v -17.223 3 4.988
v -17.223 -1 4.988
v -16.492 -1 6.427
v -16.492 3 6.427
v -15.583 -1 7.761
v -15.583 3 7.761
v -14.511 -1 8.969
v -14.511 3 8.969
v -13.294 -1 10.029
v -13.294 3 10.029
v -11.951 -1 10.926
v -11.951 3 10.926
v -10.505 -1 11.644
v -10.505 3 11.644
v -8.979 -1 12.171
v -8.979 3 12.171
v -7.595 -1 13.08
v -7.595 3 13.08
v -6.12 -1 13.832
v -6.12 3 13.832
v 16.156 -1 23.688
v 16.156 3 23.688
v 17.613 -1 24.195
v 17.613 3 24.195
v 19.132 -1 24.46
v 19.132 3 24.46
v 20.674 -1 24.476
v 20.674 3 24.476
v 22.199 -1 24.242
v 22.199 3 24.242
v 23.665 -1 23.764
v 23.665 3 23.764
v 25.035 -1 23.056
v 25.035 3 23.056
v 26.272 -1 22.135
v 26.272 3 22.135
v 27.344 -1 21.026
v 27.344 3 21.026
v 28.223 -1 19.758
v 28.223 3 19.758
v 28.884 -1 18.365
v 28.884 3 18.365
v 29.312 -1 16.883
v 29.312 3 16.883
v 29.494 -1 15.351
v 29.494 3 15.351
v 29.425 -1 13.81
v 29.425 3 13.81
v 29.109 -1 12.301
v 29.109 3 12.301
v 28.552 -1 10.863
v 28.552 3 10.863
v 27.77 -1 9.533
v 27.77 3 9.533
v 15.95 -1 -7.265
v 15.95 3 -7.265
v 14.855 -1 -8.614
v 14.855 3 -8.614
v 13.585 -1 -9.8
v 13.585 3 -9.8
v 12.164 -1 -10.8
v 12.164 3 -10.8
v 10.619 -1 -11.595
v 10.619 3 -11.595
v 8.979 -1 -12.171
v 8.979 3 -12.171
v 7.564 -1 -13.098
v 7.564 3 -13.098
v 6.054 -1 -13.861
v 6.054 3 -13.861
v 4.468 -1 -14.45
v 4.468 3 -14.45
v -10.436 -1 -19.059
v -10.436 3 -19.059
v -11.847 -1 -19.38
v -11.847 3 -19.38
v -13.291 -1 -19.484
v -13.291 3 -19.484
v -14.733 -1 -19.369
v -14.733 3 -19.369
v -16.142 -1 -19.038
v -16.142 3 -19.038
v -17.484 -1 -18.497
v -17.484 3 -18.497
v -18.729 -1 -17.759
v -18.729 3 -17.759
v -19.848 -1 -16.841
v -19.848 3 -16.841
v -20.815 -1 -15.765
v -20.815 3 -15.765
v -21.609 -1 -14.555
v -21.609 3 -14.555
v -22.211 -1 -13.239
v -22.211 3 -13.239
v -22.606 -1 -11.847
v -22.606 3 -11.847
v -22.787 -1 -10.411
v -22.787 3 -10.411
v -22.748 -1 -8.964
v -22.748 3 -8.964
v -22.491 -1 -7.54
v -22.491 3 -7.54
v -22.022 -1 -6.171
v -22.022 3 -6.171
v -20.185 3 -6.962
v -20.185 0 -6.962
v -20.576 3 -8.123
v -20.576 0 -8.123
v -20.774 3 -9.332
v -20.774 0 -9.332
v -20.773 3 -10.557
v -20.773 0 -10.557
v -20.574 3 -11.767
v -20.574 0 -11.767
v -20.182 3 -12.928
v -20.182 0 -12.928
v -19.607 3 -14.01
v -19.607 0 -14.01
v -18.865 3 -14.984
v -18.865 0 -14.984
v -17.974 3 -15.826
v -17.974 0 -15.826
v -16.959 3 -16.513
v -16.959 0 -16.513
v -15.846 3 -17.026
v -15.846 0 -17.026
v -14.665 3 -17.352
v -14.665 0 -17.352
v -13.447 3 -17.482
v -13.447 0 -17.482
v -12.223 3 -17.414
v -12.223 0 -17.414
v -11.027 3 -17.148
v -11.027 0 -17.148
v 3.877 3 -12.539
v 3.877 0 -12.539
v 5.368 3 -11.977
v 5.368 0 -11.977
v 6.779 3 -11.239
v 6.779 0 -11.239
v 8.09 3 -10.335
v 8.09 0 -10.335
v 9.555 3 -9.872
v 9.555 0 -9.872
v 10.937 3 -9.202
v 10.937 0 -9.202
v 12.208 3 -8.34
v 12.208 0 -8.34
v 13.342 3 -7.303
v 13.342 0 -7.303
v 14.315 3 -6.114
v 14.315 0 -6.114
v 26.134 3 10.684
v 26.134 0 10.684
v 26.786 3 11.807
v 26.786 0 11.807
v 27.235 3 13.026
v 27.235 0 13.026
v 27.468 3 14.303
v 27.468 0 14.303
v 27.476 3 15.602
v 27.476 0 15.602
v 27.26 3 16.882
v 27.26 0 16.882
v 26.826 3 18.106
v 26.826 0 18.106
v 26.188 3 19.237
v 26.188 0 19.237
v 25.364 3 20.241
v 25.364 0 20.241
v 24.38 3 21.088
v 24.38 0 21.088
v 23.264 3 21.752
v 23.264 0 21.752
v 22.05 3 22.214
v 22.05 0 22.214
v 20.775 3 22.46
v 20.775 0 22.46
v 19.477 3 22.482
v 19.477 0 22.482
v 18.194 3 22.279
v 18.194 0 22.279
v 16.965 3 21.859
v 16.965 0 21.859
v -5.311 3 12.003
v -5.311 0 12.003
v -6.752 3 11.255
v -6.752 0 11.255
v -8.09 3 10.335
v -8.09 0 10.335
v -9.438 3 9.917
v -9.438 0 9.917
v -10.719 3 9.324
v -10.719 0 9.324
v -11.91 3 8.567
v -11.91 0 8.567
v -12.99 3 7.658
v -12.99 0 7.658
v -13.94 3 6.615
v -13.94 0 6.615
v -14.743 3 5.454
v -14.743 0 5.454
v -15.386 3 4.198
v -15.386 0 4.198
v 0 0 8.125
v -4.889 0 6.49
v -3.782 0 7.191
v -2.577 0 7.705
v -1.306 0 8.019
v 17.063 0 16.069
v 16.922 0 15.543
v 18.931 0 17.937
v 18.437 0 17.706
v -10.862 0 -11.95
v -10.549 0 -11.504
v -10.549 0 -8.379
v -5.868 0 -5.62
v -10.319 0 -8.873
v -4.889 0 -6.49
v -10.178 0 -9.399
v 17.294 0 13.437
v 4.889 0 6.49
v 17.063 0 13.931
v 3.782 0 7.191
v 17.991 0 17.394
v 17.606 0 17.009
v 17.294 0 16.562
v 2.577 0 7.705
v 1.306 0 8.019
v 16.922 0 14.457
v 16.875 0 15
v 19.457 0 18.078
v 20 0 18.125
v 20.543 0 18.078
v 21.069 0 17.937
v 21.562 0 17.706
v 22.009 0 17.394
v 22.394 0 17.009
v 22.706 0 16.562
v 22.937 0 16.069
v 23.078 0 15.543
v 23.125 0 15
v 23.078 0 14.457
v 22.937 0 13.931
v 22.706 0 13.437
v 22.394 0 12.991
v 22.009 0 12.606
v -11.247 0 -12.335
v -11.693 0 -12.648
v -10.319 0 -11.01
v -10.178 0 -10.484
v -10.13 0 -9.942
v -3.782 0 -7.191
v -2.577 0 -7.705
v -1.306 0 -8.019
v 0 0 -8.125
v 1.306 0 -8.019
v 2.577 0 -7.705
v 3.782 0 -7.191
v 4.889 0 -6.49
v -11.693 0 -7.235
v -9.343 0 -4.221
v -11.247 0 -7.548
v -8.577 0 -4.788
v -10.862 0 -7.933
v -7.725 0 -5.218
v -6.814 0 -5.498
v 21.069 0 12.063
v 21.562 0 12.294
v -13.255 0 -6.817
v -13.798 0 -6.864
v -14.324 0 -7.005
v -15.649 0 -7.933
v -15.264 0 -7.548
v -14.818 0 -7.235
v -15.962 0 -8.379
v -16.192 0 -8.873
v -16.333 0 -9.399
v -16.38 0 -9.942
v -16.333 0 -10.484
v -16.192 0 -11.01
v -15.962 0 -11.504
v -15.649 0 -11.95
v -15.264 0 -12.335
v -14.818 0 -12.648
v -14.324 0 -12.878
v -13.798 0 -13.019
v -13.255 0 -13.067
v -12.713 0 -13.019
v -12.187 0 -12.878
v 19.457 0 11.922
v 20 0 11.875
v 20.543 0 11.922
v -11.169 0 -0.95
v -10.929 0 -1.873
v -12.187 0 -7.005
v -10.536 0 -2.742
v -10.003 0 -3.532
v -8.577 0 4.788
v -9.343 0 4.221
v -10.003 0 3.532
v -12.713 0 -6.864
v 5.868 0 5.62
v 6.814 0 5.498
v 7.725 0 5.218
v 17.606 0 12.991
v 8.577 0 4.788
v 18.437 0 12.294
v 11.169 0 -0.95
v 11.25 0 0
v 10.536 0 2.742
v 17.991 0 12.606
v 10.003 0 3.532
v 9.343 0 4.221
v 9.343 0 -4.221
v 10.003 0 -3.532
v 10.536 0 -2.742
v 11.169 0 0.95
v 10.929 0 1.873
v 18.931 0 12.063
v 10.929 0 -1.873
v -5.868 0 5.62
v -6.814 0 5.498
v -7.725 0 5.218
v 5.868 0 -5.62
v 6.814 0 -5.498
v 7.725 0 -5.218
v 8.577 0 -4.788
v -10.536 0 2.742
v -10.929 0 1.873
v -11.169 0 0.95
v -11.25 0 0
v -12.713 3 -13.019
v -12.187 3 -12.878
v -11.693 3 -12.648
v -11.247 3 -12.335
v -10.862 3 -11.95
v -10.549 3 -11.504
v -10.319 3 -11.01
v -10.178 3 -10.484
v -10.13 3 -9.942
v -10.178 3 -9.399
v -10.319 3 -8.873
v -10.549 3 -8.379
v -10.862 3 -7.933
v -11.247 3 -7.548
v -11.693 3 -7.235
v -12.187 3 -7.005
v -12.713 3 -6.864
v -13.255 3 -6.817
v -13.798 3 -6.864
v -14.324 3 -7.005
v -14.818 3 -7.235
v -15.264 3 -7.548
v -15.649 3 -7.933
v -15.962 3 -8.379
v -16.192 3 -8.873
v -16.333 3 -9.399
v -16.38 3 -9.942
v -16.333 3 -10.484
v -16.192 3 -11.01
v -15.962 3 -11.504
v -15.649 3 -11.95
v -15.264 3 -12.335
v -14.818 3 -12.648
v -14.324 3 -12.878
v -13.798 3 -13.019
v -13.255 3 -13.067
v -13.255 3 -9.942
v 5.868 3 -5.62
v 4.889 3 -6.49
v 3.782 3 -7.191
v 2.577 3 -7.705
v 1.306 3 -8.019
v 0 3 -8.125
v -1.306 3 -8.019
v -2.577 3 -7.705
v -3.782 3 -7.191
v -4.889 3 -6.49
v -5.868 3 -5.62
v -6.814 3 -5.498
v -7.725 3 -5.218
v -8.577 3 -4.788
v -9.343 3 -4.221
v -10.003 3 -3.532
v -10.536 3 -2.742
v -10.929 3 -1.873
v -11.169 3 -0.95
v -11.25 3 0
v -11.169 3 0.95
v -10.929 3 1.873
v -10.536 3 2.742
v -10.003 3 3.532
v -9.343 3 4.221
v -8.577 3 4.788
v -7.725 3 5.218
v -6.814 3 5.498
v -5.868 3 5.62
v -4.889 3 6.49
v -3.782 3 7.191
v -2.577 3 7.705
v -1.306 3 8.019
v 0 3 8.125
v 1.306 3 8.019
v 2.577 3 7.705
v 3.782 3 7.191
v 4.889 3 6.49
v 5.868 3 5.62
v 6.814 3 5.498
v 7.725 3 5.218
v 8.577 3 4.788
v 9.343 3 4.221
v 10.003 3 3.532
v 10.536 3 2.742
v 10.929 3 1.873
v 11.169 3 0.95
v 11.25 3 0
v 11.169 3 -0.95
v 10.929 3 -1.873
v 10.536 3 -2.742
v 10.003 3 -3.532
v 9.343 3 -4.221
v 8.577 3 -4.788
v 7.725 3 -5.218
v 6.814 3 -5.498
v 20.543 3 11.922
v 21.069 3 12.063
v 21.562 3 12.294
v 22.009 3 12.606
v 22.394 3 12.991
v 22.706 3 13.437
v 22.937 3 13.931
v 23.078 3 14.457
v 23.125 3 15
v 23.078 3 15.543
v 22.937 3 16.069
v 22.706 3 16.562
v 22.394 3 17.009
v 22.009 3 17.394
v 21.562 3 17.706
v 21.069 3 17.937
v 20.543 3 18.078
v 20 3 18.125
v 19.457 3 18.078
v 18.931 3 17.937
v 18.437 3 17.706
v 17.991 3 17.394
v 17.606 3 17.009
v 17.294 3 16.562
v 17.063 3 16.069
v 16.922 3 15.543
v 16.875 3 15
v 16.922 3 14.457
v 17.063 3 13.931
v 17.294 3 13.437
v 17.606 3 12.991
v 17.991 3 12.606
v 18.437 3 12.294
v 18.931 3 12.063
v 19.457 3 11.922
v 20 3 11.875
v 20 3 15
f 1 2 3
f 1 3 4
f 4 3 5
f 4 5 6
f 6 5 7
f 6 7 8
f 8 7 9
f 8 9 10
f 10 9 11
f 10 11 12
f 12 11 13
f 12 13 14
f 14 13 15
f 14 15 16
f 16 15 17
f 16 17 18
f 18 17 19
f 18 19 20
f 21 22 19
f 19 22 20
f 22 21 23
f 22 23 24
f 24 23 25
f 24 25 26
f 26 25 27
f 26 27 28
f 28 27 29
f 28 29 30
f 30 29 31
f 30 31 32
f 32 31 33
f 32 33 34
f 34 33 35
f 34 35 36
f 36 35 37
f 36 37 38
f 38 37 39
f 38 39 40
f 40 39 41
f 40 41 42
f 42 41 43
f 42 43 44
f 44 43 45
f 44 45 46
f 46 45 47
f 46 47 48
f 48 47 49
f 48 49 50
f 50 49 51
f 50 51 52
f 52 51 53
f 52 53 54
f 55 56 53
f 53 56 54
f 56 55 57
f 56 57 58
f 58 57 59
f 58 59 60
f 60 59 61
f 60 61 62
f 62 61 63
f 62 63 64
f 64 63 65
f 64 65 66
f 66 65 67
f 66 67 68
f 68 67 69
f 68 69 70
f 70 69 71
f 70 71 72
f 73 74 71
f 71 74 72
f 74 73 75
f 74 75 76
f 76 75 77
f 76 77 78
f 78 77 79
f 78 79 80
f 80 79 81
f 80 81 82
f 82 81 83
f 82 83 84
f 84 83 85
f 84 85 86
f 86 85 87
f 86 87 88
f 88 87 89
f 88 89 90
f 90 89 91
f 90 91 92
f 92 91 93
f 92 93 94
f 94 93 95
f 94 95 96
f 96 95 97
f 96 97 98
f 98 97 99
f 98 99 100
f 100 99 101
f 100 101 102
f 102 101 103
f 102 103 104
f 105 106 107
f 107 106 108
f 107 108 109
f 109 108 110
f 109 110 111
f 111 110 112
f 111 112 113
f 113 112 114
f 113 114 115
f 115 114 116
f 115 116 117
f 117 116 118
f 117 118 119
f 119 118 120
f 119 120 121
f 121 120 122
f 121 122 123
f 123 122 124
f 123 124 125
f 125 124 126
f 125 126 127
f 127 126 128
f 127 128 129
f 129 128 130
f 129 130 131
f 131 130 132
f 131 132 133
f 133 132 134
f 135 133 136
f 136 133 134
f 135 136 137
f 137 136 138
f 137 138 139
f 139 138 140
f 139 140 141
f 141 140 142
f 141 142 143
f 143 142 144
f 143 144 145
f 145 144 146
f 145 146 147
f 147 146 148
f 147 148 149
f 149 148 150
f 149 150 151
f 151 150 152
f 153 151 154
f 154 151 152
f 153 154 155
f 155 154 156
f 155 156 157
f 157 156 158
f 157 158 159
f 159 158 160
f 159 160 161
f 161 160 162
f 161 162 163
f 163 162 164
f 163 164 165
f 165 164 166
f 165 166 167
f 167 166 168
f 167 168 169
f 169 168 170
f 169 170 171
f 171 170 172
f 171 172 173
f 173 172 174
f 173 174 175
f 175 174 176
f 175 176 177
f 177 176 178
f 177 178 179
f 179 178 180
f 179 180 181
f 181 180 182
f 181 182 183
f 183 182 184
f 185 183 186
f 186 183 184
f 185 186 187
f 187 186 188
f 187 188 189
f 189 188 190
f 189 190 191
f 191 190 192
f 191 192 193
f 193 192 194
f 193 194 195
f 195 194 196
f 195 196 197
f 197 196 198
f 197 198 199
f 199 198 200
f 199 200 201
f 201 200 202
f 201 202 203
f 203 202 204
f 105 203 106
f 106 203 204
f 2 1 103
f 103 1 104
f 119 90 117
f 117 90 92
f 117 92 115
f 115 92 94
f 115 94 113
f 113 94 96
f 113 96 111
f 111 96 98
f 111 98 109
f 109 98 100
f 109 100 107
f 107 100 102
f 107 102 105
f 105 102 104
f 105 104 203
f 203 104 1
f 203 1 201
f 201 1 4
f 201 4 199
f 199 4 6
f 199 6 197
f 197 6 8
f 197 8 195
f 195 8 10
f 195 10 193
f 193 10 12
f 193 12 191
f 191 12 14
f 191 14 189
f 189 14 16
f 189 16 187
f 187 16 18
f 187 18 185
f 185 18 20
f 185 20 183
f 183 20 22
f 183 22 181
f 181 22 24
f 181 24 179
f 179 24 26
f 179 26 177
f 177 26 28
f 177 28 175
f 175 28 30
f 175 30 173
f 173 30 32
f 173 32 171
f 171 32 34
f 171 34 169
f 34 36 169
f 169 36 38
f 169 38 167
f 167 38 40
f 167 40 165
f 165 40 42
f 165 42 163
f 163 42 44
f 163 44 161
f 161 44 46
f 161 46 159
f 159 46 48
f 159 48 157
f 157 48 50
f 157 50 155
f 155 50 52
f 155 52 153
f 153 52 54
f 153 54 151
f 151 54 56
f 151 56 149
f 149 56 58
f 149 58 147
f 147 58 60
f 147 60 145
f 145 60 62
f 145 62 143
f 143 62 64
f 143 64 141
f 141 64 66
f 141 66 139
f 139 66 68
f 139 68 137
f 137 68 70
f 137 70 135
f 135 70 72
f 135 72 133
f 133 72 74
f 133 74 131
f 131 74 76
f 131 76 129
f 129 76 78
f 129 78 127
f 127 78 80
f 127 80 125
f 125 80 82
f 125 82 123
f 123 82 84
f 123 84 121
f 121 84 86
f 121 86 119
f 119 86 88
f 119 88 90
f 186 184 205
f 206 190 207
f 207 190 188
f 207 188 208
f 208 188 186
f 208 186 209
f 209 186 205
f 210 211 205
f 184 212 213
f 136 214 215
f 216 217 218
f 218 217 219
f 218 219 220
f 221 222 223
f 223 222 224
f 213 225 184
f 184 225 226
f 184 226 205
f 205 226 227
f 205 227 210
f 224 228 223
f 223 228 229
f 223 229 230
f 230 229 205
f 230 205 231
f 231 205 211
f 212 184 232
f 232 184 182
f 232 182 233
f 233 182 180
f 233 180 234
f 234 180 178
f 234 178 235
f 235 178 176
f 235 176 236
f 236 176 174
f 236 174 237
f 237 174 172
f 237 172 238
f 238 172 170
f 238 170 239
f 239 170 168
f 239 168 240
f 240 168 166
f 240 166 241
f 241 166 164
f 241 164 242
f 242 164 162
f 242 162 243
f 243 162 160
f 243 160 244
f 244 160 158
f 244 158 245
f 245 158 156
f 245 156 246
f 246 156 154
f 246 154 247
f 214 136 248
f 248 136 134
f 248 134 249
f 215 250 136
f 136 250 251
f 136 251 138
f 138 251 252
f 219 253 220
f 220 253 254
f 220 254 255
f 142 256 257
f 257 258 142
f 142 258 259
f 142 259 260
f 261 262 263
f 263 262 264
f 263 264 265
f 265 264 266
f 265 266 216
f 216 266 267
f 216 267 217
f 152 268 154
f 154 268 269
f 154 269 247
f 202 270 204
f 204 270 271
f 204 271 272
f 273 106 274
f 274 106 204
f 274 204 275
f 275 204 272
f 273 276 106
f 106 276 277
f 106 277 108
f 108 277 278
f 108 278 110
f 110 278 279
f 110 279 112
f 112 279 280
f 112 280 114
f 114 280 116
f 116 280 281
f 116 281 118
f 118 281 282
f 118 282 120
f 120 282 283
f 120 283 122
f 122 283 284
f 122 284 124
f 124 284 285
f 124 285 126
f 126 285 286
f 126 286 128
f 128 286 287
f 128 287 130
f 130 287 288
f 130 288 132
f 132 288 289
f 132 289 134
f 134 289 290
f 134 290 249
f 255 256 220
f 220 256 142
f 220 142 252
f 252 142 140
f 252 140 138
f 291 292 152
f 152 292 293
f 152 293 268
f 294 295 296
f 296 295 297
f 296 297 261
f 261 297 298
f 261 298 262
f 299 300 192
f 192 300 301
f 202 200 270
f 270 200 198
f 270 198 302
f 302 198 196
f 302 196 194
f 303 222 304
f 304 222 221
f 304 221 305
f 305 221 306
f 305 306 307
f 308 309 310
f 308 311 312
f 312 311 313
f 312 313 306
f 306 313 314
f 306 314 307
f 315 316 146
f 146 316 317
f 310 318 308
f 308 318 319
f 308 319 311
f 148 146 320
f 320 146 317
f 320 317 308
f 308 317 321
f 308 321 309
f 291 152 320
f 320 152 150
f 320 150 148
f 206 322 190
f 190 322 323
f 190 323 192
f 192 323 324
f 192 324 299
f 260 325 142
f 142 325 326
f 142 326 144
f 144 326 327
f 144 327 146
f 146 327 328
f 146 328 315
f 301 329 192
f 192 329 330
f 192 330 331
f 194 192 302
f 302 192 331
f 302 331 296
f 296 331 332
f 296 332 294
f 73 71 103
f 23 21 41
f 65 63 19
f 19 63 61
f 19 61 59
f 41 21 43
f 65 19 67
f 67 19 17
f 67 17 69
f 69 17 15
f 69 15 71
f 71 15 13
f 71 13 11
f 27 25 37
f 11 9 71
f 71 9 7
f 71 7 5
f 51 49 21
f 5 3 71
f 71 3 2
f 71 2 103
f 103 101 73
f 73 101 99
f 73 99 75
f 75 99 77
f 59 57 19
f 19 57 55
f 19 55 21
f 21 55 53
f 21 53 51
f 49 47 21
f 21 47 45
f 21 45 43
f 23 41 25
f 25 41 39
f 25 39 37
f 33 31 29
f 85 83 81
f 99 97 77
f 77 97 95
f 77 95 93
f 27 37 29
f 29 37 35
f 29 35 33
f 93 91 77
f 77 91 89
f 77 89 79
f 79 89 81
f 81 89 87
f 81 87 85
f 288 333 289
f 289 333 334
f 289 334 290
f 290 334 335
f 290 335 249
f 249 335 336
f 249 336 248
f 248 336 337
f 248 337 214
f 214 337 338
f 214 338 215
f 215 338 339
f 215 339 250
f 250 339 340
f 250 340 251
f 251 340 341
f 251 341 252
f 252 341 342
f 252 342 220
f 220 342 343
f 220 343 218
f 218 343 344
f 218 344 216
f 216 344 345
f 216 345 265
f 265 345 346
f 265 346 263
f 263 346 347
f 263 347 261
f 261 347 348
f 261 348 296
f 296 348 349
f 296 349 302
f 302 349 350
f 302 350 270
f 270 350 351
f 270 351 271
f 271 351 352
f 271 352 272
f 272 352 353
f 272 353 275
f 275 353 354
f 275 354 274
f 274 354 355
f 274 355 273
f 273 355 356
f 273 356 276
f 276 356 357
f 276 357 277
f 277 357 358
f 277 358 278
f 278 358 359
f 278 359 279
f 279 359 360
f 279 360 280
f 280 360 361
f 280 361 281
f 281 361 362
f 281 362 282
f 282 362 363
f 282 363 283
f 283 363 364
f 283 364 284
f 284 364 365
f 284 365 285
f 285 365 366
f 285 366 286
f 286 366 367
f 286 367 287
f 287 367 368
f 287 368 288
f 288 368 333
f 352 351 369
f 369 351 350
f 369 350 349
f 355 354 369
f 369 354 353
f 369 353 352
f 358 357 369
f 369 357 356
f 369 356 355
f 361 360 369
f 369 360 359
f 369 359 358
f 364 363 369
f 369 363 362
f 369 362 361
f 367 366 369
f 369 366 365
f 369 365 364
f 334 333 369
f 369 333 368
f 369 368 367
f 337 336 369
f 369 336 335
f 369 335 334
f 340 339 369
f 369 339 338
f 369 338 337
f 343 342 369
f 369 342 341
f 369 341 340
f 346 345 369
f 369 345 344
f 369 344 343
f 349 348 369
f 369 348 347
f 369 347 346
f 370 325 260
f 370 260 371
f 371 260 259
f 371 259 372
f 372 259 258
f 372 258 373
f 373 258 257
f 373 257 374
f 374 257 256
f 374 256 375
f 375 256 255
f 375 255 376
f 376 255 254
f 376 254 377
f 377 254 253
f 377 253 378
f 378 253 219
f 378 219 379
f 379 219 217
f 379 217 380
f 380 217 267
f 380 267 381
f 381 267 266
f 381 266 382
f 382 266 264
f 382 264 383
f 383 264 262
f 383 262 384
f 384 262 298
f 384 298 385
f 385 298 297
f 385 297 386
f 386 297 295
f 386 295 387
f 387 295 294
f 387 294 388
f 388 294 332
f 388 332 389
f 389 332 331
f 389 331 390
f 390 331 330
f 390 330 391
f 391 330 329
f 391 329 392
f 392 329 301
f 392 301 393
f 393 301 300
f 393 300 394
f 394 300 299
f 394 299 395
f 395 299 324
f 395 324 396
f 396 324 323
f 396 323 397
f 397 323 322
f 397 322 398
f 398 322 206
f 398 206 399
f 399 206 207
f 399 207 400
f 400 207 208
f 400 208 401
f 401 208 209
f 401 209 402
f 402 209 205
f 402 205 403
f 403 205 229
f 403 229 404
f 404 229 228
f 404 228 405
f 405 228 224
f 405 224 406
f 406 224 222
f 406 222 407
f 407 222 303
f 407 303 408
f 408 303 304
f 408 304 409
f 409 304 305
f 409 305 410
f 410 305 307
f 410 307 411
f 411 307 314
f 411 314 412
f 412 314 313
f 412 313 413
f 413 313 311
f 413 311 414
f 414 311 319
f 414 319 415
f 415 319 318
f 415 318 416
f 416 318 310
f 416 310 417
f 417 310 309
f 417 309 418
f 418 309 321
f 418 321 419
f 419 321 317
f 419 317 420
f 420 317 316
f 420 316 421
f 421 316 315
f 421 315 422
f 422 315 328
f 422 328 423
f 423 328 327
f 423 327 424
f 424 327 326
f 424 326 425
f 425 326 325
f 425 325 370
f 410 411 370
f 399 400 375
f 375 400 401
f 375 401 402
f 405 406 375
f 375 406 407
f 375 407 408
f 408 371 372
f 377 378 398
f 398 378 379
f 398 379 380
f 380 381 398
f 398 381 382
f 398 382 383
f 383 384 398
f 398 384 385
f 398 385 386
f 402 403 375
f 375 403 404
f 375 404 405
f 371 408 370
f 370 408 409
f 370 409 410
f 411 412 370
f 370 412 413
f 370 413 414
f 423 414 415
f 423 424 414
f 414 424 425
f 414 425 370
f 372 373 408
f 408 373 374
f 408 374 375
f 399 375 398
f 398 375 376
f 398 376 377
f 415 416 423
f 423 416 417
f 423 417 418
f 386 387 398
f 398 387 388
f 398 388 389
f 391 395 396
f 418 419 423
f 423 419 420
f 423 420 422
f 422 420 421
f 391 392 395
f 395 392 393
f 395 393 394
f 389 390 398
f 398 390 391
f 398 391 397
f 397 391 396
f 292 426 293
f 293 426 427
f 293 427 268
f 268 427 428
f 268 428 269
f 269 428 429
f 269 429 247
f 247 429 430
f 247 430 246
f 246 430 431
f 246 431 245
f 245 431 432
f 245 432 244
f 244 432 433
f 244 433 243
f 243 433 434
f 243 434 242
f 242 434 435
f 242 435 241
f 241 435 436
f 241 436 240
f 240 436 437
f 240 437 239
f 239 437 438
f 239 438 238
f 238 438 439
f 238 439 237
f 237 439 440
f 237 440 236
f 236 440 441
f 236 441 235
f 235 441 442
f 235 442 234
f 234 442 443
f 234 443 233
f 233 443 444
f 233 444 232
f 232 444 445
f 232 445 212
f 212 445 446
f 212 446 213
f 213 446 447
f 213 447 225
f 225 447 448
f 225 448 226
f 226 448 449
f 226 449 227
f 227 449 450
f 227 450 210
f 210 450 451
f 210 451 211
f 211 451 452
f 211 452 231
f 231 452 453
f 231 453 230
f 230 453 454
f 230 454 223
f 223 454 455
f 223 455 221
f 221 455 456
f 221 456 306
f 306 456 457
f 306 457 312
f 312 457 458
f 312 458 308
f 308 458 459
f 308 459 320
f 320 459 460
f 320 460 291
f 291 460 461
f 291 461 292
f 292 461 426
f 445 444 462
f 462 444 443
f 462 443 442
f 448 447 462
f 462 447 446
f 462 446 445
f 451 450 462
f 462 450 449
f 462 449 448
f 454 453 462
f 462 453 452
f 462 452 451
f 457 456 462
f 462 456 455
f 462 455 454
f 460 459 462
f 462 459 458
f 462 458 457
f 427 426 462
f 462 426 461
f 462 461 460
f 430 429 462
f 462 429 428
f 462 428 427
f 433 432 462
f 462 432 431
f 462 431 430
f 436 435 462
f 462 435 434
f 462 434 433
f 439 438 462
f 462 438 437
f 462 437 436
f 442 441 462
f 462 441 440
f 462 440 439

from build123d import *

# Parameters (mm, degrees)
SKETCH1_R             = 3.125
BOSS_EXTRUDE1_DEPTH   = 3
BOSS_EXTRUDE1_2_DEPTH = 3
BOSS_EXTRUDE1_3_DEPTH = 3
BOSS_EXTRUDE1_4_DEPTH = 3
BOSS_EXTRUDE2_DEPTH   = 1


with BuildPart() as part:
    # Sketch1 → Boss-Extrude1 (new body)
    with BuildSketch(Plane(origin=(0, 0, 0), x_dir=(1, 0, 0), z_dir=(0, 1, 0))):
        with Locations(Location((20, -15, 0), (0, 0, 270))):
            Circle(SKETCH1_R)
    extrude(amount=BOSS_EXTRUDE1_DEPTH)



with BuildPart() as body_2:
    # Sketch1 → Boss-Extrude1 2 (new body)
    with BuildSketch(Plane(origin=(0, 0, 0), x_dir=(1, 0, 0), z_dir=(0, 1, 0))):
        with Locations(Location((-13.25542136, 9.94156602, 0), (0, 0, 270))):
            Circle(SKETCH1_R)
    extrude(amount=BOSS_EXTRUDE1_2_DEPTH)


with BuildPart() as body_3:
    # Sketch1 → Boss-Extrude1 3 (new body)
    with BuildSketch(Plane(origin=(0, 0, 0), x_dir=(1, 0, 0), z_dir=(0, 1, 0))):
        with BuildLine():
            Line((-6.119805779, -13.831616038), (16.156155048, -23.687626603))
            ThreePointArc((16.156155048, -23.687626603), (27.344292117, -21.025891909), (27.769542612, -9.533354996))
            Line((27.769542612, -9.533354996), (15.950313209, 7.264883492))
            ThreePointArc((15.950313209, 7.264883492), (12.8913772, 10.324262075), (8.979166667, 12.17128551))
            ThreePointArc((8.979166667, 12.17128551), (6.819498906, 13.500372575), (4.468133972, 14.44996207))
            Line((4.468133972, 14.44996207), (-10.436297143, 19.05862434))
            ThreePointArc((-10.436297143, 19.05862434), (-20.352140796, 16.321596348), (-22.022063001, 6.171392537))
            Line((-22.022063001, 6.171392537), (-17.222949988, -4.987803231))
            ThreePointArc((-17.222949988, -4.987803231), (-13.919097451, -9.518328239), (-8.979166667, -12.17128551))
            ThreePointArc((-8.979166667, -12.17128551), (-7.594992863, -13.079820657), (-6.119805779, -13.831616038))
        make_face()
        with BuildLine():
            Line((-5.310575263, -12.002642017), (16.965385564, -21.858652581))
            ThreePointArc((16.965385564, -21.858652581), (25.798125356, -19.757283086), (26.133849431, -10.684227629))
            Line((26.133849431, -10.684227629), (14.314620027, 6.114010859))
            ThreePointArc((14.314620027, 6.114010859), (11.588405557, 8.793657895), (8.090277778, 10.335038968))
            ThreePointArc((8.090277778, 10.335038968), (6.084437075, 11.62949915), (3.877306339, 12.539223283))
            Line((3.877306339, 12.539223283), (-11.027124776, 17.147885554))
            ThreePointArc((-11.027124776, 17.147885554), (-18.864821465, 14.984479597), (-20.184763993, 6.961539583))
            Line((-20.184763993, 6.961539583), (-15.38565098, -4.197656185))
            ThreePointArc((-15.38565098, -4.197656185), (-12.464970786, -8.130524254), (-8.090277778, -10.335038968))
            ThreePointArc((-8.090277778, -10.335038968), (-6.752106378, -11.254984872), (-5.310575263, -12.002642017))
        make_face(mode=Mode.SUBTRACT)
    extrude(amount=BOSS_EXTRUDE1_3_DEPTH)


with BuildPart() as body_4:
    # Sketch1 → Boss-Extrude1 4 (new body)
    with BuildSketch(Plane(origin=(0, 0, 0), x_dir=(1, 0, 0), z_dir=(0, 1, 0))):
        with BuildLine():
            ThreePointArc((-5.868055556, -5.619746346), (0, -8.125), (5.868055556, -5.619746346))
            ThreePointArc((5.868055556, -5.619746346), (11.25, 0), (5.868055556, 5.619746346))
            ThreePointArc((5.868055556, 5.619746346), (0, 8.125), (-5.868055556, 5.619746346))
            ThreePointArc((-5.868055556, 5.619746346), (-11.25, 0), (-5.868055556, -5.619746346))
        make_face()
    extrude(amount=BOSS_EXTRUDE1_4_DEPTH)


with BuildPart() as part_1:
    add(part.part)

    add(body_2.part)  # Boss-Extrude2 merges body 2

    add(body_3.part)  # Boss-Extrude2 merges body 3

    add(body_4.part)  # Boss-Extrude2 merges body 4
    # Sketch2 → Boss-Extrude2 (add)
    with BuildSketch(Plane.XZ):
        with BuildLine():
            Line((-17.222949988, 4.987803231), (-22.022063001, -6.171392537))
            ThreePointArc((-22.022063001, -6.171392537), (-20.352140796, -16.321596348), (-10.436297143, -19.05862434))
            Line((-10.436297143, -19.05862434), (4.468133972, -14.44996207))
            ThreePointArc((4.468133972, -14.44996207), (6.819498906, -13.500372575), (8.979166667, -12.17128551))
            ThreePointArc((8.979166667, -12.17128551), (12.8913772, -10.324262075), (15.950313209, -7.264883492))
            Line((15.950313209, -7.264883492), (27.769542612, 9.533354996))
            ThreePointArc((27.769542612, 9.533354996), (27.344292117, 21.025891909), (16.156155048, 23.687626603))
            Line((16.156155048, 23.687626603), (-6.119805779, 13.831616038))
            ThreePointArc((-6.119805779, 13.831616038), (-7.594992863, 13.079820657), (-8.979166667, 12.17128551))
            ThreePointArc((-8.979166667, 12.17128551), (-13.919097451, 9.518328239), (-17.222949988, 4.987803231))
        make_face()
    extrude(amount=BOSS_EXTRUDE2_DEPTH)


solid = part_1.part
